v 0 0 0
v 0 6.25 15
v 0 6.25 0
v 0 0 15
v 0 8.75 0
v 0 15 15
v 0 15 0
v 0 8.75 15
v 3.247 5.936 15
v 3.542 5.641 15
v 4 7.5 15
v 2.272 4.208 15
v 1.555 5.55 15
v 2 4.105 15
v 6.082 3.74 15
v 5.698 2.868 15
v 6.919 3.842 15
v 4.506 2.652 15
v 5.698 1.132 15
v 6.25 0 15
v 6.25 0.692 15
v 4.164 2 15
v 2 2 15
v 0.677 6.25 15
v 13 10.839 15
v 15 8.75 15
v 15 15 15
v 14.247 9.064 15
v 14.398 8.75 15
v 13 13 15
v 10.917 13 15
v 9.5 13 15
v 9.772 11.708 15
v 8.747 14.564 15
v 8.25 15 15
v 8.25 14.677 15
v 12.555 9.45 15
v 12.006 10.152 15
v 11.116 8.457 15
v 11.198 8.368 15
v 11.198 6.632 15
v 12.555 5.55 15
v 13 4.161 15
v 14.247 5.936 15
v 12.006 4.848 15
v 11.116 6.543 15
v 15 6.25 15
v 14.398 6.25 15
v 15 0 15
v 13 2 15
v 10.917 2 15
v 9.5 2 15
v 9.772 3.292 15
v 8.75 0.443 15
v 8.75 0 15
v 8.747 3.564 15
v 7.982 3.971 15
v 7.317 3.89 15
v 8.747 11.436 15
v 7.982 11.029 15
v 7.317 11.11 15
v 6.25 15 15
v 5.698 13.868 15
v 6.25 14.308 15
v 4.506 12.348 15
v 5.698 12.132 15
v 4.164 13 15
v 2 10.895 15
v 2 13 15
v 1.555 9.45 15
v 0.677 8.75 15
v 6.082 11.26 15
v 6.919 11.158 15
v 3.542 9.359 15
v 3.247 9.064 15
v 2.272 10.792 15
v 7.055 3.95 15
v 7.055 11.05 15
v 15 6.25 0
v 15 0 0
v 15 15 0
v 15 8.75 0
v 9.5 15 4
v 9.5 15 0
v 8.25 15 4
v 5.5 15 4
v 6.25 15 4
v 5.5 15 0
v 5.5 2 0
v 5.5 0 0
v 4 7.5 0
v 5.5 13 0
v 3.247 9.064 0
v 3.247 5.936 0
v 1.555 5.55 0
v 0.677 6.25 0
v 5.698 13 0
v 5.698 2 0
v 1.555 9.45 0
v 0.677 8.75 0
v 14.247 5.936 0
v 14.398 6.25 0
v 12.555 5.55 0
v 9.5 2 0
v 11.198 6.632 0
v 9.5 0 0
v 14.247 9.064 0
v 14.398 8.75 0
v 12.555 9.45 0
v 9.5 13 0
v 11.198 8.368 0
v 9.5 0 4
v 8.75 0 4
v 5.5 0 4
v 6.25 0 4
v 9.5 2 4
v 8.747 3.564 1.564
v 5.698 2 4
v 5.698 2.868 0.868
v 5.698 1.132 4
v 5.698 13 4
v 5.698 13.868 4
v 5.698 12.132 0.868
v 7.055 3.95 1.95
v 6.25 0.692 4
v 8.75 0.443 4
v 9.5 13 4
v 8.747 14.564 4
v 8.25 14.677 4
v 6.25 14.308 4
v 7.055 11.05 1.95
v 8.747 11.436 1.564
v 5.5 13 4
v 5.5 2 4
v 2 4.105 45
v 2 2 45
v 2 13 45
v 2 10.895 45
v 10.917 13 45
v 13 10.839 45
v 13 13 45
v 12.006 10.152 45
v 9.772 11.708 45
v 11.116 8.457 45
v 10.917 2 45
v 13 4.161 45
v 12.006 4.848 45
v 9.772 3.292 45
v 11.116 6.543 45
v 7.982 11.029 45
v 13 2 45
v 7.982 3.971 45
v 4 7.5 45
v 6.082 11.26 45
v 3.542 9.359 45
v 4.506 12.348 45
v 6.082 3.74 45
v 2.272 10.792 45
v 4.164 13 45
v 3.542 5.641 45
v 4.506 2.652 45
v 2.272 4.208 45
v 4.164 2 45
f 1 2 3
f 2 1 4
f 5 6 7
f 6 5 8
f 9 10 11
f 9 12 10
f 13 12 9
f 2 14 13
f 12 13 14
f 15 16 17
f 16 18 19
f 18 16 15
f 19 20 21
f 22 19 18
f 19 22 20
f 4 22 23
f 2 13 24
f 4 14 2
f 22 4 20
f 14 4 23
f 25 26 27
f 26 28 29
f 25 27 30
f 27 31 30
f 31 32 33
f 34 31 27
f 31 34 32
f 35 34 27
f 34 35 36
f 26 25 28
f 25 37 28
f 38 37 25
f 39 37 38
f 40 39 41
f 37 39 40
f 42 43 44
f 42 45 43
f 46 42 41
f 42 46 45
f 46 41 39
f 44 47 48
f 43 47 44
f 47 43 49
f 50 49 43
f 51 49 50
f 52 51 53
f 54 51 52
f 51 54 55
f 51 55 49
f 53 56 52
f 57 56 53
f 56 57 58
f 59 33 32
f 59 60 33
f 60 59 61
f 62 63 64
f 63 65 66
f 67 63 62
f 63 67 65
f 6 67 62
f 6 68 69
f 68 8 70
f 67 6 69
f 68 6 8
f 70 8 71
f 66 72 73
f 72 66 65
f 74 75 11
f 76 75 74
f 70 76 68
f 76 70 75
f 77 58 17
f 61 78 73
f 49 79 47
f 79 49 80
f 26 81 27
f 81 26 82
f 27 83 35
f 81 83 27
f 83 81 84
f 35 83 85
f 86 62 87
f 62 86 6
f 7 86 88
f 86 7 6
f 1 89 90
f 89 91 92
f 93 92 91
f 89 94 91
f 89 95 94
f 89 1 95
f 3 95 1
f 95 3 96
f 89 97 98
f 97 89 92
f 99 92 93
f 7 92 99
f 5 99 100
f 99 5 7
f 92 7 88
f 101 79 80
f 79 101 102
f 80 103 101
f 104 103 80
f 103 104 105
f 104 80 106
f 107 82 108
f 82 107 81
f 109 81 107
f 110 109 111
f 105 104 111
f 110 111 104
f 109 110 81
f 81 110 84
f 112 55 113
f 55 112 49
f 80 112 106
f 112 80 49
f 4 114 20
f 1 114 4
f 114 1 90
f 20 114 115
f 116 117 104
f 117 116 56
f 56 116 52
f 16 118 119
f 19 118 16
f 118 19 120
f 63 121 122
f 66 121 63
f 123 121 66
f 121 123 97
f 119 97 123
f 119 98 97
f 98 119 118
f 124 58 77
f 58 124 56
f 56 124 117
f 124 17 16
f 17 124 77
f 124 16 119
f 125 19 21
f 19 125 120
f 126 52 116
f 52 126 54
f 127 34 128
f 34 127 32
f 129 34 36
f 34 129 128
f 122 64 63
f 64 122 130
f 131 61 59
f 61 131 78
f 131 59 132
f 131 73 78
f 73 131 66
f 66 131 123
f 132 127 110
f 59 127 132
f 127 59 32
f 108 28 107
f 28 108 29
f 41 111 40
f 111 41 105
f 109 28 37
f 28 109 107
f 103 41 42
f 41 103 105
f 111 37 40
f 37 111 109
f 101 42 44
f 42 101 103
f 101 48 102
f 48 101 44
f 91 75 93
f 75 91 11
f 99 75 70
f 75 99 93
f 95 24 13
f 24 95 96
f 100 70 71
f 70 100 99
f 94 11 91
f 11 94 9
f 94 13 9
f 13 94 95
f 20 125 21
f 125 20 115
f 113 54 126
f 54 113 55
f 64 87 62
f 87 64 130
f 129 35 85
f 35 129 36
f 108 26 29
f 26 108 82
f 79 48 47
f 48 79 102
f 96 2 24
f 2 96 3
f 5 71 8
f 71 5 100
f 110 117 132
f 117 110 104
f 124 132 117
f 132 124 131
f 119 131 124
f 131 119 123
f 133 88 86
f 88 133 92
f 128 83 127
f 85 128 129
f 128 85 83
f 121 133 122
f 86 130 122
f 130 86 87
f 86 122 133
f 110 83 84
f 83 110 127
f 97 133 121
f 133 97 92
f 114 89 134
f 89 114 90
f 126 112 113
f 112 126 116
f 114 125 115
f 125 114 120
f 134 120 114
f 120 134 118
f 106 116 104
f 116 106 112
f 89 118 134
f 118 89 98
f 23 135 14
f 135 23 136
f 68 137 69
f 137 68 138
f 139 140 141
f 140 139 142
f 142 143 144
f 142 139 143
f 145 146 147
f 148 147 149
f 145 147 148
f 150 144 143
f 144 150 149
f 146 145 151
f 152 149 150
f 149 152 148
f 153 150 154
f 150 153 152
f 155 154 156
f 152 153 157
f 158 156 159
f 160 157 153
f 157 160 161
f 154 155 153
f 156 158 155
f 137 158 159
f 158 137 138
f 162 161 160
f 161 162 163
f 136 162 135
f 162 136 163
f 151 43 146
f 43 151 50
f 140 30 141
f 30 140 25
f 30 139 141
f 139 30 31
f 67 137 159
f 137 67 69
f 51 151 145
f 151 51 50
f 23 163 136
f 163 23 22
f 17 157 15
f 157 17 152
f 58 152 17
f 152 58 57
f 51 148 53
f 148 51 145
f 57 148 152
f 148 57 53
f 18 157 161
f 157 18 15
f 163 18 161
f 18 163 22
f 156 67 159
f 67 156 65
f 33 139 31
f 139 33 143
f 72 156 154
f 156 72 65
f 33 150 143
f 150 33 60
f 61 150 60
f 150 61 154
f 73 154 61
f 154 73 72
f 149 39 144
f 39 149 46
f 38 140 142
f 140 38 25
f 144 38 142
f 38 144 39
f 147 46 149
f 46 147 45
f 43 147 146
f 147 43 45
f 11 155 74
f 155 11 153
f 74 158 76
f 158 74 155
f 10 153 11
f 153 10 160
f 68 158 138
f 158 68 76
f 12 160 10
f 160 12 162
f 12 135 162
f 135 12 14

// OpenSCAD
/**
 * Create an adapter for connecting a 15x15 square tube to Fischertechnik.
 *
 * @author Brian Schroeder
 * @since 21.04.2020
 */

/* [End Cap length] */
// Fischertechnik compatible end cap length in millimeters
EndCapLength=15; // [15, 30, 45, 60, 75, 90]

/*
 * Create the adapter with Fischertechnik compatible end cap length passed by the argument.
 *
 * @param ftiEndCapLength end cap length in millimeters (default is 15)
 */
module ftiSpuareTubeAdapter15x15(ftiEndCapLength=15) {

    union() {

        // Fischertechnik connector part
        difference() {
            dFti=4; // axis diameter
            gFtiW=2.5; // with of gap
            gFtiD=2; // depth of gap
            cube([15, 15, ftiEndCapLength]);
            // axis
            translate([7.5,dFti/2,0])cylinder(h=ftiEndCapLength, d=dFti);
            translate([7.5,15-dFti/2,0])cylinder(h=ftiEndCapLength, d=dFti);
            translate([15-dFti/2,7.5,0])cylinder(h=ftiEndCapLength, d=dFti);
            translate([dFti/2,7.5,0])cylinder(h=ftiEndCapLength, d=dFti);
            // space
            translate([7.5-gFtiW/2,0,0])cube([gFtiW, gFtiD, ftiEndCapLength]);
            translate([7.5-gFtiW/2,15-gFtiD,0])cube([gFtiD, gFtiW, ftiEndCapLength]);
            translate([15-dFti/2,7.5-gFtiW/2,0])cube([gFtiD, gFtiW, ftiEndCapLength]);
            translate([0,7.5-gFtiW/2,0])cube([gFtiD, gFtiW, ftiEndCapLength]);
            // orthoganal axis at end
            translate([7.5, 15, 0])rotate([90, 0, 0])cylinder(h=15, d=dFti);
            translate([7.5-dFti/2, 15-dFti/2, 0])cube([dFti, dFti, dFti]);
            translate([7.5-dFti/2, 0-dFti/2, 0])cube([dFti, dFti, dFti]);
        }

        // square tube connector part
        translate([2, 2, ftiEndCapLength])difference() {
            hTubeConn=(ftiEndCapLength < 60) ? 30 : (ftiEndCapLength < 75 ? 45 : 60);
            dCarveOut=8; // carve out diameter
            oCarveOut=6; // carve out offset
            // corpus
            cube([11, 11, hTubeConn]);
            // space
            translate([5.5,dCarveOut/2-oCarveOut,0])cylinder(h=hTubeConn, d=dCarveOut);
            translate([5.5,11-dCarveOut/2+oCarveOut,0])cylinder(h=hTubeConn, d=dCarveOut);
            translate([11-dCarveOut/2+oCarveOut,5.5,0])cylinder(h=hTubeConn, d=dCarveOut);
            translate([dCarveOut/2-oCarveOut,5.5,0])cylinder(h=hTubeConn, d=dCarveOut);
        }
    }
}

ftiSpuareTubeAdapter15x15(EndCapLength);
